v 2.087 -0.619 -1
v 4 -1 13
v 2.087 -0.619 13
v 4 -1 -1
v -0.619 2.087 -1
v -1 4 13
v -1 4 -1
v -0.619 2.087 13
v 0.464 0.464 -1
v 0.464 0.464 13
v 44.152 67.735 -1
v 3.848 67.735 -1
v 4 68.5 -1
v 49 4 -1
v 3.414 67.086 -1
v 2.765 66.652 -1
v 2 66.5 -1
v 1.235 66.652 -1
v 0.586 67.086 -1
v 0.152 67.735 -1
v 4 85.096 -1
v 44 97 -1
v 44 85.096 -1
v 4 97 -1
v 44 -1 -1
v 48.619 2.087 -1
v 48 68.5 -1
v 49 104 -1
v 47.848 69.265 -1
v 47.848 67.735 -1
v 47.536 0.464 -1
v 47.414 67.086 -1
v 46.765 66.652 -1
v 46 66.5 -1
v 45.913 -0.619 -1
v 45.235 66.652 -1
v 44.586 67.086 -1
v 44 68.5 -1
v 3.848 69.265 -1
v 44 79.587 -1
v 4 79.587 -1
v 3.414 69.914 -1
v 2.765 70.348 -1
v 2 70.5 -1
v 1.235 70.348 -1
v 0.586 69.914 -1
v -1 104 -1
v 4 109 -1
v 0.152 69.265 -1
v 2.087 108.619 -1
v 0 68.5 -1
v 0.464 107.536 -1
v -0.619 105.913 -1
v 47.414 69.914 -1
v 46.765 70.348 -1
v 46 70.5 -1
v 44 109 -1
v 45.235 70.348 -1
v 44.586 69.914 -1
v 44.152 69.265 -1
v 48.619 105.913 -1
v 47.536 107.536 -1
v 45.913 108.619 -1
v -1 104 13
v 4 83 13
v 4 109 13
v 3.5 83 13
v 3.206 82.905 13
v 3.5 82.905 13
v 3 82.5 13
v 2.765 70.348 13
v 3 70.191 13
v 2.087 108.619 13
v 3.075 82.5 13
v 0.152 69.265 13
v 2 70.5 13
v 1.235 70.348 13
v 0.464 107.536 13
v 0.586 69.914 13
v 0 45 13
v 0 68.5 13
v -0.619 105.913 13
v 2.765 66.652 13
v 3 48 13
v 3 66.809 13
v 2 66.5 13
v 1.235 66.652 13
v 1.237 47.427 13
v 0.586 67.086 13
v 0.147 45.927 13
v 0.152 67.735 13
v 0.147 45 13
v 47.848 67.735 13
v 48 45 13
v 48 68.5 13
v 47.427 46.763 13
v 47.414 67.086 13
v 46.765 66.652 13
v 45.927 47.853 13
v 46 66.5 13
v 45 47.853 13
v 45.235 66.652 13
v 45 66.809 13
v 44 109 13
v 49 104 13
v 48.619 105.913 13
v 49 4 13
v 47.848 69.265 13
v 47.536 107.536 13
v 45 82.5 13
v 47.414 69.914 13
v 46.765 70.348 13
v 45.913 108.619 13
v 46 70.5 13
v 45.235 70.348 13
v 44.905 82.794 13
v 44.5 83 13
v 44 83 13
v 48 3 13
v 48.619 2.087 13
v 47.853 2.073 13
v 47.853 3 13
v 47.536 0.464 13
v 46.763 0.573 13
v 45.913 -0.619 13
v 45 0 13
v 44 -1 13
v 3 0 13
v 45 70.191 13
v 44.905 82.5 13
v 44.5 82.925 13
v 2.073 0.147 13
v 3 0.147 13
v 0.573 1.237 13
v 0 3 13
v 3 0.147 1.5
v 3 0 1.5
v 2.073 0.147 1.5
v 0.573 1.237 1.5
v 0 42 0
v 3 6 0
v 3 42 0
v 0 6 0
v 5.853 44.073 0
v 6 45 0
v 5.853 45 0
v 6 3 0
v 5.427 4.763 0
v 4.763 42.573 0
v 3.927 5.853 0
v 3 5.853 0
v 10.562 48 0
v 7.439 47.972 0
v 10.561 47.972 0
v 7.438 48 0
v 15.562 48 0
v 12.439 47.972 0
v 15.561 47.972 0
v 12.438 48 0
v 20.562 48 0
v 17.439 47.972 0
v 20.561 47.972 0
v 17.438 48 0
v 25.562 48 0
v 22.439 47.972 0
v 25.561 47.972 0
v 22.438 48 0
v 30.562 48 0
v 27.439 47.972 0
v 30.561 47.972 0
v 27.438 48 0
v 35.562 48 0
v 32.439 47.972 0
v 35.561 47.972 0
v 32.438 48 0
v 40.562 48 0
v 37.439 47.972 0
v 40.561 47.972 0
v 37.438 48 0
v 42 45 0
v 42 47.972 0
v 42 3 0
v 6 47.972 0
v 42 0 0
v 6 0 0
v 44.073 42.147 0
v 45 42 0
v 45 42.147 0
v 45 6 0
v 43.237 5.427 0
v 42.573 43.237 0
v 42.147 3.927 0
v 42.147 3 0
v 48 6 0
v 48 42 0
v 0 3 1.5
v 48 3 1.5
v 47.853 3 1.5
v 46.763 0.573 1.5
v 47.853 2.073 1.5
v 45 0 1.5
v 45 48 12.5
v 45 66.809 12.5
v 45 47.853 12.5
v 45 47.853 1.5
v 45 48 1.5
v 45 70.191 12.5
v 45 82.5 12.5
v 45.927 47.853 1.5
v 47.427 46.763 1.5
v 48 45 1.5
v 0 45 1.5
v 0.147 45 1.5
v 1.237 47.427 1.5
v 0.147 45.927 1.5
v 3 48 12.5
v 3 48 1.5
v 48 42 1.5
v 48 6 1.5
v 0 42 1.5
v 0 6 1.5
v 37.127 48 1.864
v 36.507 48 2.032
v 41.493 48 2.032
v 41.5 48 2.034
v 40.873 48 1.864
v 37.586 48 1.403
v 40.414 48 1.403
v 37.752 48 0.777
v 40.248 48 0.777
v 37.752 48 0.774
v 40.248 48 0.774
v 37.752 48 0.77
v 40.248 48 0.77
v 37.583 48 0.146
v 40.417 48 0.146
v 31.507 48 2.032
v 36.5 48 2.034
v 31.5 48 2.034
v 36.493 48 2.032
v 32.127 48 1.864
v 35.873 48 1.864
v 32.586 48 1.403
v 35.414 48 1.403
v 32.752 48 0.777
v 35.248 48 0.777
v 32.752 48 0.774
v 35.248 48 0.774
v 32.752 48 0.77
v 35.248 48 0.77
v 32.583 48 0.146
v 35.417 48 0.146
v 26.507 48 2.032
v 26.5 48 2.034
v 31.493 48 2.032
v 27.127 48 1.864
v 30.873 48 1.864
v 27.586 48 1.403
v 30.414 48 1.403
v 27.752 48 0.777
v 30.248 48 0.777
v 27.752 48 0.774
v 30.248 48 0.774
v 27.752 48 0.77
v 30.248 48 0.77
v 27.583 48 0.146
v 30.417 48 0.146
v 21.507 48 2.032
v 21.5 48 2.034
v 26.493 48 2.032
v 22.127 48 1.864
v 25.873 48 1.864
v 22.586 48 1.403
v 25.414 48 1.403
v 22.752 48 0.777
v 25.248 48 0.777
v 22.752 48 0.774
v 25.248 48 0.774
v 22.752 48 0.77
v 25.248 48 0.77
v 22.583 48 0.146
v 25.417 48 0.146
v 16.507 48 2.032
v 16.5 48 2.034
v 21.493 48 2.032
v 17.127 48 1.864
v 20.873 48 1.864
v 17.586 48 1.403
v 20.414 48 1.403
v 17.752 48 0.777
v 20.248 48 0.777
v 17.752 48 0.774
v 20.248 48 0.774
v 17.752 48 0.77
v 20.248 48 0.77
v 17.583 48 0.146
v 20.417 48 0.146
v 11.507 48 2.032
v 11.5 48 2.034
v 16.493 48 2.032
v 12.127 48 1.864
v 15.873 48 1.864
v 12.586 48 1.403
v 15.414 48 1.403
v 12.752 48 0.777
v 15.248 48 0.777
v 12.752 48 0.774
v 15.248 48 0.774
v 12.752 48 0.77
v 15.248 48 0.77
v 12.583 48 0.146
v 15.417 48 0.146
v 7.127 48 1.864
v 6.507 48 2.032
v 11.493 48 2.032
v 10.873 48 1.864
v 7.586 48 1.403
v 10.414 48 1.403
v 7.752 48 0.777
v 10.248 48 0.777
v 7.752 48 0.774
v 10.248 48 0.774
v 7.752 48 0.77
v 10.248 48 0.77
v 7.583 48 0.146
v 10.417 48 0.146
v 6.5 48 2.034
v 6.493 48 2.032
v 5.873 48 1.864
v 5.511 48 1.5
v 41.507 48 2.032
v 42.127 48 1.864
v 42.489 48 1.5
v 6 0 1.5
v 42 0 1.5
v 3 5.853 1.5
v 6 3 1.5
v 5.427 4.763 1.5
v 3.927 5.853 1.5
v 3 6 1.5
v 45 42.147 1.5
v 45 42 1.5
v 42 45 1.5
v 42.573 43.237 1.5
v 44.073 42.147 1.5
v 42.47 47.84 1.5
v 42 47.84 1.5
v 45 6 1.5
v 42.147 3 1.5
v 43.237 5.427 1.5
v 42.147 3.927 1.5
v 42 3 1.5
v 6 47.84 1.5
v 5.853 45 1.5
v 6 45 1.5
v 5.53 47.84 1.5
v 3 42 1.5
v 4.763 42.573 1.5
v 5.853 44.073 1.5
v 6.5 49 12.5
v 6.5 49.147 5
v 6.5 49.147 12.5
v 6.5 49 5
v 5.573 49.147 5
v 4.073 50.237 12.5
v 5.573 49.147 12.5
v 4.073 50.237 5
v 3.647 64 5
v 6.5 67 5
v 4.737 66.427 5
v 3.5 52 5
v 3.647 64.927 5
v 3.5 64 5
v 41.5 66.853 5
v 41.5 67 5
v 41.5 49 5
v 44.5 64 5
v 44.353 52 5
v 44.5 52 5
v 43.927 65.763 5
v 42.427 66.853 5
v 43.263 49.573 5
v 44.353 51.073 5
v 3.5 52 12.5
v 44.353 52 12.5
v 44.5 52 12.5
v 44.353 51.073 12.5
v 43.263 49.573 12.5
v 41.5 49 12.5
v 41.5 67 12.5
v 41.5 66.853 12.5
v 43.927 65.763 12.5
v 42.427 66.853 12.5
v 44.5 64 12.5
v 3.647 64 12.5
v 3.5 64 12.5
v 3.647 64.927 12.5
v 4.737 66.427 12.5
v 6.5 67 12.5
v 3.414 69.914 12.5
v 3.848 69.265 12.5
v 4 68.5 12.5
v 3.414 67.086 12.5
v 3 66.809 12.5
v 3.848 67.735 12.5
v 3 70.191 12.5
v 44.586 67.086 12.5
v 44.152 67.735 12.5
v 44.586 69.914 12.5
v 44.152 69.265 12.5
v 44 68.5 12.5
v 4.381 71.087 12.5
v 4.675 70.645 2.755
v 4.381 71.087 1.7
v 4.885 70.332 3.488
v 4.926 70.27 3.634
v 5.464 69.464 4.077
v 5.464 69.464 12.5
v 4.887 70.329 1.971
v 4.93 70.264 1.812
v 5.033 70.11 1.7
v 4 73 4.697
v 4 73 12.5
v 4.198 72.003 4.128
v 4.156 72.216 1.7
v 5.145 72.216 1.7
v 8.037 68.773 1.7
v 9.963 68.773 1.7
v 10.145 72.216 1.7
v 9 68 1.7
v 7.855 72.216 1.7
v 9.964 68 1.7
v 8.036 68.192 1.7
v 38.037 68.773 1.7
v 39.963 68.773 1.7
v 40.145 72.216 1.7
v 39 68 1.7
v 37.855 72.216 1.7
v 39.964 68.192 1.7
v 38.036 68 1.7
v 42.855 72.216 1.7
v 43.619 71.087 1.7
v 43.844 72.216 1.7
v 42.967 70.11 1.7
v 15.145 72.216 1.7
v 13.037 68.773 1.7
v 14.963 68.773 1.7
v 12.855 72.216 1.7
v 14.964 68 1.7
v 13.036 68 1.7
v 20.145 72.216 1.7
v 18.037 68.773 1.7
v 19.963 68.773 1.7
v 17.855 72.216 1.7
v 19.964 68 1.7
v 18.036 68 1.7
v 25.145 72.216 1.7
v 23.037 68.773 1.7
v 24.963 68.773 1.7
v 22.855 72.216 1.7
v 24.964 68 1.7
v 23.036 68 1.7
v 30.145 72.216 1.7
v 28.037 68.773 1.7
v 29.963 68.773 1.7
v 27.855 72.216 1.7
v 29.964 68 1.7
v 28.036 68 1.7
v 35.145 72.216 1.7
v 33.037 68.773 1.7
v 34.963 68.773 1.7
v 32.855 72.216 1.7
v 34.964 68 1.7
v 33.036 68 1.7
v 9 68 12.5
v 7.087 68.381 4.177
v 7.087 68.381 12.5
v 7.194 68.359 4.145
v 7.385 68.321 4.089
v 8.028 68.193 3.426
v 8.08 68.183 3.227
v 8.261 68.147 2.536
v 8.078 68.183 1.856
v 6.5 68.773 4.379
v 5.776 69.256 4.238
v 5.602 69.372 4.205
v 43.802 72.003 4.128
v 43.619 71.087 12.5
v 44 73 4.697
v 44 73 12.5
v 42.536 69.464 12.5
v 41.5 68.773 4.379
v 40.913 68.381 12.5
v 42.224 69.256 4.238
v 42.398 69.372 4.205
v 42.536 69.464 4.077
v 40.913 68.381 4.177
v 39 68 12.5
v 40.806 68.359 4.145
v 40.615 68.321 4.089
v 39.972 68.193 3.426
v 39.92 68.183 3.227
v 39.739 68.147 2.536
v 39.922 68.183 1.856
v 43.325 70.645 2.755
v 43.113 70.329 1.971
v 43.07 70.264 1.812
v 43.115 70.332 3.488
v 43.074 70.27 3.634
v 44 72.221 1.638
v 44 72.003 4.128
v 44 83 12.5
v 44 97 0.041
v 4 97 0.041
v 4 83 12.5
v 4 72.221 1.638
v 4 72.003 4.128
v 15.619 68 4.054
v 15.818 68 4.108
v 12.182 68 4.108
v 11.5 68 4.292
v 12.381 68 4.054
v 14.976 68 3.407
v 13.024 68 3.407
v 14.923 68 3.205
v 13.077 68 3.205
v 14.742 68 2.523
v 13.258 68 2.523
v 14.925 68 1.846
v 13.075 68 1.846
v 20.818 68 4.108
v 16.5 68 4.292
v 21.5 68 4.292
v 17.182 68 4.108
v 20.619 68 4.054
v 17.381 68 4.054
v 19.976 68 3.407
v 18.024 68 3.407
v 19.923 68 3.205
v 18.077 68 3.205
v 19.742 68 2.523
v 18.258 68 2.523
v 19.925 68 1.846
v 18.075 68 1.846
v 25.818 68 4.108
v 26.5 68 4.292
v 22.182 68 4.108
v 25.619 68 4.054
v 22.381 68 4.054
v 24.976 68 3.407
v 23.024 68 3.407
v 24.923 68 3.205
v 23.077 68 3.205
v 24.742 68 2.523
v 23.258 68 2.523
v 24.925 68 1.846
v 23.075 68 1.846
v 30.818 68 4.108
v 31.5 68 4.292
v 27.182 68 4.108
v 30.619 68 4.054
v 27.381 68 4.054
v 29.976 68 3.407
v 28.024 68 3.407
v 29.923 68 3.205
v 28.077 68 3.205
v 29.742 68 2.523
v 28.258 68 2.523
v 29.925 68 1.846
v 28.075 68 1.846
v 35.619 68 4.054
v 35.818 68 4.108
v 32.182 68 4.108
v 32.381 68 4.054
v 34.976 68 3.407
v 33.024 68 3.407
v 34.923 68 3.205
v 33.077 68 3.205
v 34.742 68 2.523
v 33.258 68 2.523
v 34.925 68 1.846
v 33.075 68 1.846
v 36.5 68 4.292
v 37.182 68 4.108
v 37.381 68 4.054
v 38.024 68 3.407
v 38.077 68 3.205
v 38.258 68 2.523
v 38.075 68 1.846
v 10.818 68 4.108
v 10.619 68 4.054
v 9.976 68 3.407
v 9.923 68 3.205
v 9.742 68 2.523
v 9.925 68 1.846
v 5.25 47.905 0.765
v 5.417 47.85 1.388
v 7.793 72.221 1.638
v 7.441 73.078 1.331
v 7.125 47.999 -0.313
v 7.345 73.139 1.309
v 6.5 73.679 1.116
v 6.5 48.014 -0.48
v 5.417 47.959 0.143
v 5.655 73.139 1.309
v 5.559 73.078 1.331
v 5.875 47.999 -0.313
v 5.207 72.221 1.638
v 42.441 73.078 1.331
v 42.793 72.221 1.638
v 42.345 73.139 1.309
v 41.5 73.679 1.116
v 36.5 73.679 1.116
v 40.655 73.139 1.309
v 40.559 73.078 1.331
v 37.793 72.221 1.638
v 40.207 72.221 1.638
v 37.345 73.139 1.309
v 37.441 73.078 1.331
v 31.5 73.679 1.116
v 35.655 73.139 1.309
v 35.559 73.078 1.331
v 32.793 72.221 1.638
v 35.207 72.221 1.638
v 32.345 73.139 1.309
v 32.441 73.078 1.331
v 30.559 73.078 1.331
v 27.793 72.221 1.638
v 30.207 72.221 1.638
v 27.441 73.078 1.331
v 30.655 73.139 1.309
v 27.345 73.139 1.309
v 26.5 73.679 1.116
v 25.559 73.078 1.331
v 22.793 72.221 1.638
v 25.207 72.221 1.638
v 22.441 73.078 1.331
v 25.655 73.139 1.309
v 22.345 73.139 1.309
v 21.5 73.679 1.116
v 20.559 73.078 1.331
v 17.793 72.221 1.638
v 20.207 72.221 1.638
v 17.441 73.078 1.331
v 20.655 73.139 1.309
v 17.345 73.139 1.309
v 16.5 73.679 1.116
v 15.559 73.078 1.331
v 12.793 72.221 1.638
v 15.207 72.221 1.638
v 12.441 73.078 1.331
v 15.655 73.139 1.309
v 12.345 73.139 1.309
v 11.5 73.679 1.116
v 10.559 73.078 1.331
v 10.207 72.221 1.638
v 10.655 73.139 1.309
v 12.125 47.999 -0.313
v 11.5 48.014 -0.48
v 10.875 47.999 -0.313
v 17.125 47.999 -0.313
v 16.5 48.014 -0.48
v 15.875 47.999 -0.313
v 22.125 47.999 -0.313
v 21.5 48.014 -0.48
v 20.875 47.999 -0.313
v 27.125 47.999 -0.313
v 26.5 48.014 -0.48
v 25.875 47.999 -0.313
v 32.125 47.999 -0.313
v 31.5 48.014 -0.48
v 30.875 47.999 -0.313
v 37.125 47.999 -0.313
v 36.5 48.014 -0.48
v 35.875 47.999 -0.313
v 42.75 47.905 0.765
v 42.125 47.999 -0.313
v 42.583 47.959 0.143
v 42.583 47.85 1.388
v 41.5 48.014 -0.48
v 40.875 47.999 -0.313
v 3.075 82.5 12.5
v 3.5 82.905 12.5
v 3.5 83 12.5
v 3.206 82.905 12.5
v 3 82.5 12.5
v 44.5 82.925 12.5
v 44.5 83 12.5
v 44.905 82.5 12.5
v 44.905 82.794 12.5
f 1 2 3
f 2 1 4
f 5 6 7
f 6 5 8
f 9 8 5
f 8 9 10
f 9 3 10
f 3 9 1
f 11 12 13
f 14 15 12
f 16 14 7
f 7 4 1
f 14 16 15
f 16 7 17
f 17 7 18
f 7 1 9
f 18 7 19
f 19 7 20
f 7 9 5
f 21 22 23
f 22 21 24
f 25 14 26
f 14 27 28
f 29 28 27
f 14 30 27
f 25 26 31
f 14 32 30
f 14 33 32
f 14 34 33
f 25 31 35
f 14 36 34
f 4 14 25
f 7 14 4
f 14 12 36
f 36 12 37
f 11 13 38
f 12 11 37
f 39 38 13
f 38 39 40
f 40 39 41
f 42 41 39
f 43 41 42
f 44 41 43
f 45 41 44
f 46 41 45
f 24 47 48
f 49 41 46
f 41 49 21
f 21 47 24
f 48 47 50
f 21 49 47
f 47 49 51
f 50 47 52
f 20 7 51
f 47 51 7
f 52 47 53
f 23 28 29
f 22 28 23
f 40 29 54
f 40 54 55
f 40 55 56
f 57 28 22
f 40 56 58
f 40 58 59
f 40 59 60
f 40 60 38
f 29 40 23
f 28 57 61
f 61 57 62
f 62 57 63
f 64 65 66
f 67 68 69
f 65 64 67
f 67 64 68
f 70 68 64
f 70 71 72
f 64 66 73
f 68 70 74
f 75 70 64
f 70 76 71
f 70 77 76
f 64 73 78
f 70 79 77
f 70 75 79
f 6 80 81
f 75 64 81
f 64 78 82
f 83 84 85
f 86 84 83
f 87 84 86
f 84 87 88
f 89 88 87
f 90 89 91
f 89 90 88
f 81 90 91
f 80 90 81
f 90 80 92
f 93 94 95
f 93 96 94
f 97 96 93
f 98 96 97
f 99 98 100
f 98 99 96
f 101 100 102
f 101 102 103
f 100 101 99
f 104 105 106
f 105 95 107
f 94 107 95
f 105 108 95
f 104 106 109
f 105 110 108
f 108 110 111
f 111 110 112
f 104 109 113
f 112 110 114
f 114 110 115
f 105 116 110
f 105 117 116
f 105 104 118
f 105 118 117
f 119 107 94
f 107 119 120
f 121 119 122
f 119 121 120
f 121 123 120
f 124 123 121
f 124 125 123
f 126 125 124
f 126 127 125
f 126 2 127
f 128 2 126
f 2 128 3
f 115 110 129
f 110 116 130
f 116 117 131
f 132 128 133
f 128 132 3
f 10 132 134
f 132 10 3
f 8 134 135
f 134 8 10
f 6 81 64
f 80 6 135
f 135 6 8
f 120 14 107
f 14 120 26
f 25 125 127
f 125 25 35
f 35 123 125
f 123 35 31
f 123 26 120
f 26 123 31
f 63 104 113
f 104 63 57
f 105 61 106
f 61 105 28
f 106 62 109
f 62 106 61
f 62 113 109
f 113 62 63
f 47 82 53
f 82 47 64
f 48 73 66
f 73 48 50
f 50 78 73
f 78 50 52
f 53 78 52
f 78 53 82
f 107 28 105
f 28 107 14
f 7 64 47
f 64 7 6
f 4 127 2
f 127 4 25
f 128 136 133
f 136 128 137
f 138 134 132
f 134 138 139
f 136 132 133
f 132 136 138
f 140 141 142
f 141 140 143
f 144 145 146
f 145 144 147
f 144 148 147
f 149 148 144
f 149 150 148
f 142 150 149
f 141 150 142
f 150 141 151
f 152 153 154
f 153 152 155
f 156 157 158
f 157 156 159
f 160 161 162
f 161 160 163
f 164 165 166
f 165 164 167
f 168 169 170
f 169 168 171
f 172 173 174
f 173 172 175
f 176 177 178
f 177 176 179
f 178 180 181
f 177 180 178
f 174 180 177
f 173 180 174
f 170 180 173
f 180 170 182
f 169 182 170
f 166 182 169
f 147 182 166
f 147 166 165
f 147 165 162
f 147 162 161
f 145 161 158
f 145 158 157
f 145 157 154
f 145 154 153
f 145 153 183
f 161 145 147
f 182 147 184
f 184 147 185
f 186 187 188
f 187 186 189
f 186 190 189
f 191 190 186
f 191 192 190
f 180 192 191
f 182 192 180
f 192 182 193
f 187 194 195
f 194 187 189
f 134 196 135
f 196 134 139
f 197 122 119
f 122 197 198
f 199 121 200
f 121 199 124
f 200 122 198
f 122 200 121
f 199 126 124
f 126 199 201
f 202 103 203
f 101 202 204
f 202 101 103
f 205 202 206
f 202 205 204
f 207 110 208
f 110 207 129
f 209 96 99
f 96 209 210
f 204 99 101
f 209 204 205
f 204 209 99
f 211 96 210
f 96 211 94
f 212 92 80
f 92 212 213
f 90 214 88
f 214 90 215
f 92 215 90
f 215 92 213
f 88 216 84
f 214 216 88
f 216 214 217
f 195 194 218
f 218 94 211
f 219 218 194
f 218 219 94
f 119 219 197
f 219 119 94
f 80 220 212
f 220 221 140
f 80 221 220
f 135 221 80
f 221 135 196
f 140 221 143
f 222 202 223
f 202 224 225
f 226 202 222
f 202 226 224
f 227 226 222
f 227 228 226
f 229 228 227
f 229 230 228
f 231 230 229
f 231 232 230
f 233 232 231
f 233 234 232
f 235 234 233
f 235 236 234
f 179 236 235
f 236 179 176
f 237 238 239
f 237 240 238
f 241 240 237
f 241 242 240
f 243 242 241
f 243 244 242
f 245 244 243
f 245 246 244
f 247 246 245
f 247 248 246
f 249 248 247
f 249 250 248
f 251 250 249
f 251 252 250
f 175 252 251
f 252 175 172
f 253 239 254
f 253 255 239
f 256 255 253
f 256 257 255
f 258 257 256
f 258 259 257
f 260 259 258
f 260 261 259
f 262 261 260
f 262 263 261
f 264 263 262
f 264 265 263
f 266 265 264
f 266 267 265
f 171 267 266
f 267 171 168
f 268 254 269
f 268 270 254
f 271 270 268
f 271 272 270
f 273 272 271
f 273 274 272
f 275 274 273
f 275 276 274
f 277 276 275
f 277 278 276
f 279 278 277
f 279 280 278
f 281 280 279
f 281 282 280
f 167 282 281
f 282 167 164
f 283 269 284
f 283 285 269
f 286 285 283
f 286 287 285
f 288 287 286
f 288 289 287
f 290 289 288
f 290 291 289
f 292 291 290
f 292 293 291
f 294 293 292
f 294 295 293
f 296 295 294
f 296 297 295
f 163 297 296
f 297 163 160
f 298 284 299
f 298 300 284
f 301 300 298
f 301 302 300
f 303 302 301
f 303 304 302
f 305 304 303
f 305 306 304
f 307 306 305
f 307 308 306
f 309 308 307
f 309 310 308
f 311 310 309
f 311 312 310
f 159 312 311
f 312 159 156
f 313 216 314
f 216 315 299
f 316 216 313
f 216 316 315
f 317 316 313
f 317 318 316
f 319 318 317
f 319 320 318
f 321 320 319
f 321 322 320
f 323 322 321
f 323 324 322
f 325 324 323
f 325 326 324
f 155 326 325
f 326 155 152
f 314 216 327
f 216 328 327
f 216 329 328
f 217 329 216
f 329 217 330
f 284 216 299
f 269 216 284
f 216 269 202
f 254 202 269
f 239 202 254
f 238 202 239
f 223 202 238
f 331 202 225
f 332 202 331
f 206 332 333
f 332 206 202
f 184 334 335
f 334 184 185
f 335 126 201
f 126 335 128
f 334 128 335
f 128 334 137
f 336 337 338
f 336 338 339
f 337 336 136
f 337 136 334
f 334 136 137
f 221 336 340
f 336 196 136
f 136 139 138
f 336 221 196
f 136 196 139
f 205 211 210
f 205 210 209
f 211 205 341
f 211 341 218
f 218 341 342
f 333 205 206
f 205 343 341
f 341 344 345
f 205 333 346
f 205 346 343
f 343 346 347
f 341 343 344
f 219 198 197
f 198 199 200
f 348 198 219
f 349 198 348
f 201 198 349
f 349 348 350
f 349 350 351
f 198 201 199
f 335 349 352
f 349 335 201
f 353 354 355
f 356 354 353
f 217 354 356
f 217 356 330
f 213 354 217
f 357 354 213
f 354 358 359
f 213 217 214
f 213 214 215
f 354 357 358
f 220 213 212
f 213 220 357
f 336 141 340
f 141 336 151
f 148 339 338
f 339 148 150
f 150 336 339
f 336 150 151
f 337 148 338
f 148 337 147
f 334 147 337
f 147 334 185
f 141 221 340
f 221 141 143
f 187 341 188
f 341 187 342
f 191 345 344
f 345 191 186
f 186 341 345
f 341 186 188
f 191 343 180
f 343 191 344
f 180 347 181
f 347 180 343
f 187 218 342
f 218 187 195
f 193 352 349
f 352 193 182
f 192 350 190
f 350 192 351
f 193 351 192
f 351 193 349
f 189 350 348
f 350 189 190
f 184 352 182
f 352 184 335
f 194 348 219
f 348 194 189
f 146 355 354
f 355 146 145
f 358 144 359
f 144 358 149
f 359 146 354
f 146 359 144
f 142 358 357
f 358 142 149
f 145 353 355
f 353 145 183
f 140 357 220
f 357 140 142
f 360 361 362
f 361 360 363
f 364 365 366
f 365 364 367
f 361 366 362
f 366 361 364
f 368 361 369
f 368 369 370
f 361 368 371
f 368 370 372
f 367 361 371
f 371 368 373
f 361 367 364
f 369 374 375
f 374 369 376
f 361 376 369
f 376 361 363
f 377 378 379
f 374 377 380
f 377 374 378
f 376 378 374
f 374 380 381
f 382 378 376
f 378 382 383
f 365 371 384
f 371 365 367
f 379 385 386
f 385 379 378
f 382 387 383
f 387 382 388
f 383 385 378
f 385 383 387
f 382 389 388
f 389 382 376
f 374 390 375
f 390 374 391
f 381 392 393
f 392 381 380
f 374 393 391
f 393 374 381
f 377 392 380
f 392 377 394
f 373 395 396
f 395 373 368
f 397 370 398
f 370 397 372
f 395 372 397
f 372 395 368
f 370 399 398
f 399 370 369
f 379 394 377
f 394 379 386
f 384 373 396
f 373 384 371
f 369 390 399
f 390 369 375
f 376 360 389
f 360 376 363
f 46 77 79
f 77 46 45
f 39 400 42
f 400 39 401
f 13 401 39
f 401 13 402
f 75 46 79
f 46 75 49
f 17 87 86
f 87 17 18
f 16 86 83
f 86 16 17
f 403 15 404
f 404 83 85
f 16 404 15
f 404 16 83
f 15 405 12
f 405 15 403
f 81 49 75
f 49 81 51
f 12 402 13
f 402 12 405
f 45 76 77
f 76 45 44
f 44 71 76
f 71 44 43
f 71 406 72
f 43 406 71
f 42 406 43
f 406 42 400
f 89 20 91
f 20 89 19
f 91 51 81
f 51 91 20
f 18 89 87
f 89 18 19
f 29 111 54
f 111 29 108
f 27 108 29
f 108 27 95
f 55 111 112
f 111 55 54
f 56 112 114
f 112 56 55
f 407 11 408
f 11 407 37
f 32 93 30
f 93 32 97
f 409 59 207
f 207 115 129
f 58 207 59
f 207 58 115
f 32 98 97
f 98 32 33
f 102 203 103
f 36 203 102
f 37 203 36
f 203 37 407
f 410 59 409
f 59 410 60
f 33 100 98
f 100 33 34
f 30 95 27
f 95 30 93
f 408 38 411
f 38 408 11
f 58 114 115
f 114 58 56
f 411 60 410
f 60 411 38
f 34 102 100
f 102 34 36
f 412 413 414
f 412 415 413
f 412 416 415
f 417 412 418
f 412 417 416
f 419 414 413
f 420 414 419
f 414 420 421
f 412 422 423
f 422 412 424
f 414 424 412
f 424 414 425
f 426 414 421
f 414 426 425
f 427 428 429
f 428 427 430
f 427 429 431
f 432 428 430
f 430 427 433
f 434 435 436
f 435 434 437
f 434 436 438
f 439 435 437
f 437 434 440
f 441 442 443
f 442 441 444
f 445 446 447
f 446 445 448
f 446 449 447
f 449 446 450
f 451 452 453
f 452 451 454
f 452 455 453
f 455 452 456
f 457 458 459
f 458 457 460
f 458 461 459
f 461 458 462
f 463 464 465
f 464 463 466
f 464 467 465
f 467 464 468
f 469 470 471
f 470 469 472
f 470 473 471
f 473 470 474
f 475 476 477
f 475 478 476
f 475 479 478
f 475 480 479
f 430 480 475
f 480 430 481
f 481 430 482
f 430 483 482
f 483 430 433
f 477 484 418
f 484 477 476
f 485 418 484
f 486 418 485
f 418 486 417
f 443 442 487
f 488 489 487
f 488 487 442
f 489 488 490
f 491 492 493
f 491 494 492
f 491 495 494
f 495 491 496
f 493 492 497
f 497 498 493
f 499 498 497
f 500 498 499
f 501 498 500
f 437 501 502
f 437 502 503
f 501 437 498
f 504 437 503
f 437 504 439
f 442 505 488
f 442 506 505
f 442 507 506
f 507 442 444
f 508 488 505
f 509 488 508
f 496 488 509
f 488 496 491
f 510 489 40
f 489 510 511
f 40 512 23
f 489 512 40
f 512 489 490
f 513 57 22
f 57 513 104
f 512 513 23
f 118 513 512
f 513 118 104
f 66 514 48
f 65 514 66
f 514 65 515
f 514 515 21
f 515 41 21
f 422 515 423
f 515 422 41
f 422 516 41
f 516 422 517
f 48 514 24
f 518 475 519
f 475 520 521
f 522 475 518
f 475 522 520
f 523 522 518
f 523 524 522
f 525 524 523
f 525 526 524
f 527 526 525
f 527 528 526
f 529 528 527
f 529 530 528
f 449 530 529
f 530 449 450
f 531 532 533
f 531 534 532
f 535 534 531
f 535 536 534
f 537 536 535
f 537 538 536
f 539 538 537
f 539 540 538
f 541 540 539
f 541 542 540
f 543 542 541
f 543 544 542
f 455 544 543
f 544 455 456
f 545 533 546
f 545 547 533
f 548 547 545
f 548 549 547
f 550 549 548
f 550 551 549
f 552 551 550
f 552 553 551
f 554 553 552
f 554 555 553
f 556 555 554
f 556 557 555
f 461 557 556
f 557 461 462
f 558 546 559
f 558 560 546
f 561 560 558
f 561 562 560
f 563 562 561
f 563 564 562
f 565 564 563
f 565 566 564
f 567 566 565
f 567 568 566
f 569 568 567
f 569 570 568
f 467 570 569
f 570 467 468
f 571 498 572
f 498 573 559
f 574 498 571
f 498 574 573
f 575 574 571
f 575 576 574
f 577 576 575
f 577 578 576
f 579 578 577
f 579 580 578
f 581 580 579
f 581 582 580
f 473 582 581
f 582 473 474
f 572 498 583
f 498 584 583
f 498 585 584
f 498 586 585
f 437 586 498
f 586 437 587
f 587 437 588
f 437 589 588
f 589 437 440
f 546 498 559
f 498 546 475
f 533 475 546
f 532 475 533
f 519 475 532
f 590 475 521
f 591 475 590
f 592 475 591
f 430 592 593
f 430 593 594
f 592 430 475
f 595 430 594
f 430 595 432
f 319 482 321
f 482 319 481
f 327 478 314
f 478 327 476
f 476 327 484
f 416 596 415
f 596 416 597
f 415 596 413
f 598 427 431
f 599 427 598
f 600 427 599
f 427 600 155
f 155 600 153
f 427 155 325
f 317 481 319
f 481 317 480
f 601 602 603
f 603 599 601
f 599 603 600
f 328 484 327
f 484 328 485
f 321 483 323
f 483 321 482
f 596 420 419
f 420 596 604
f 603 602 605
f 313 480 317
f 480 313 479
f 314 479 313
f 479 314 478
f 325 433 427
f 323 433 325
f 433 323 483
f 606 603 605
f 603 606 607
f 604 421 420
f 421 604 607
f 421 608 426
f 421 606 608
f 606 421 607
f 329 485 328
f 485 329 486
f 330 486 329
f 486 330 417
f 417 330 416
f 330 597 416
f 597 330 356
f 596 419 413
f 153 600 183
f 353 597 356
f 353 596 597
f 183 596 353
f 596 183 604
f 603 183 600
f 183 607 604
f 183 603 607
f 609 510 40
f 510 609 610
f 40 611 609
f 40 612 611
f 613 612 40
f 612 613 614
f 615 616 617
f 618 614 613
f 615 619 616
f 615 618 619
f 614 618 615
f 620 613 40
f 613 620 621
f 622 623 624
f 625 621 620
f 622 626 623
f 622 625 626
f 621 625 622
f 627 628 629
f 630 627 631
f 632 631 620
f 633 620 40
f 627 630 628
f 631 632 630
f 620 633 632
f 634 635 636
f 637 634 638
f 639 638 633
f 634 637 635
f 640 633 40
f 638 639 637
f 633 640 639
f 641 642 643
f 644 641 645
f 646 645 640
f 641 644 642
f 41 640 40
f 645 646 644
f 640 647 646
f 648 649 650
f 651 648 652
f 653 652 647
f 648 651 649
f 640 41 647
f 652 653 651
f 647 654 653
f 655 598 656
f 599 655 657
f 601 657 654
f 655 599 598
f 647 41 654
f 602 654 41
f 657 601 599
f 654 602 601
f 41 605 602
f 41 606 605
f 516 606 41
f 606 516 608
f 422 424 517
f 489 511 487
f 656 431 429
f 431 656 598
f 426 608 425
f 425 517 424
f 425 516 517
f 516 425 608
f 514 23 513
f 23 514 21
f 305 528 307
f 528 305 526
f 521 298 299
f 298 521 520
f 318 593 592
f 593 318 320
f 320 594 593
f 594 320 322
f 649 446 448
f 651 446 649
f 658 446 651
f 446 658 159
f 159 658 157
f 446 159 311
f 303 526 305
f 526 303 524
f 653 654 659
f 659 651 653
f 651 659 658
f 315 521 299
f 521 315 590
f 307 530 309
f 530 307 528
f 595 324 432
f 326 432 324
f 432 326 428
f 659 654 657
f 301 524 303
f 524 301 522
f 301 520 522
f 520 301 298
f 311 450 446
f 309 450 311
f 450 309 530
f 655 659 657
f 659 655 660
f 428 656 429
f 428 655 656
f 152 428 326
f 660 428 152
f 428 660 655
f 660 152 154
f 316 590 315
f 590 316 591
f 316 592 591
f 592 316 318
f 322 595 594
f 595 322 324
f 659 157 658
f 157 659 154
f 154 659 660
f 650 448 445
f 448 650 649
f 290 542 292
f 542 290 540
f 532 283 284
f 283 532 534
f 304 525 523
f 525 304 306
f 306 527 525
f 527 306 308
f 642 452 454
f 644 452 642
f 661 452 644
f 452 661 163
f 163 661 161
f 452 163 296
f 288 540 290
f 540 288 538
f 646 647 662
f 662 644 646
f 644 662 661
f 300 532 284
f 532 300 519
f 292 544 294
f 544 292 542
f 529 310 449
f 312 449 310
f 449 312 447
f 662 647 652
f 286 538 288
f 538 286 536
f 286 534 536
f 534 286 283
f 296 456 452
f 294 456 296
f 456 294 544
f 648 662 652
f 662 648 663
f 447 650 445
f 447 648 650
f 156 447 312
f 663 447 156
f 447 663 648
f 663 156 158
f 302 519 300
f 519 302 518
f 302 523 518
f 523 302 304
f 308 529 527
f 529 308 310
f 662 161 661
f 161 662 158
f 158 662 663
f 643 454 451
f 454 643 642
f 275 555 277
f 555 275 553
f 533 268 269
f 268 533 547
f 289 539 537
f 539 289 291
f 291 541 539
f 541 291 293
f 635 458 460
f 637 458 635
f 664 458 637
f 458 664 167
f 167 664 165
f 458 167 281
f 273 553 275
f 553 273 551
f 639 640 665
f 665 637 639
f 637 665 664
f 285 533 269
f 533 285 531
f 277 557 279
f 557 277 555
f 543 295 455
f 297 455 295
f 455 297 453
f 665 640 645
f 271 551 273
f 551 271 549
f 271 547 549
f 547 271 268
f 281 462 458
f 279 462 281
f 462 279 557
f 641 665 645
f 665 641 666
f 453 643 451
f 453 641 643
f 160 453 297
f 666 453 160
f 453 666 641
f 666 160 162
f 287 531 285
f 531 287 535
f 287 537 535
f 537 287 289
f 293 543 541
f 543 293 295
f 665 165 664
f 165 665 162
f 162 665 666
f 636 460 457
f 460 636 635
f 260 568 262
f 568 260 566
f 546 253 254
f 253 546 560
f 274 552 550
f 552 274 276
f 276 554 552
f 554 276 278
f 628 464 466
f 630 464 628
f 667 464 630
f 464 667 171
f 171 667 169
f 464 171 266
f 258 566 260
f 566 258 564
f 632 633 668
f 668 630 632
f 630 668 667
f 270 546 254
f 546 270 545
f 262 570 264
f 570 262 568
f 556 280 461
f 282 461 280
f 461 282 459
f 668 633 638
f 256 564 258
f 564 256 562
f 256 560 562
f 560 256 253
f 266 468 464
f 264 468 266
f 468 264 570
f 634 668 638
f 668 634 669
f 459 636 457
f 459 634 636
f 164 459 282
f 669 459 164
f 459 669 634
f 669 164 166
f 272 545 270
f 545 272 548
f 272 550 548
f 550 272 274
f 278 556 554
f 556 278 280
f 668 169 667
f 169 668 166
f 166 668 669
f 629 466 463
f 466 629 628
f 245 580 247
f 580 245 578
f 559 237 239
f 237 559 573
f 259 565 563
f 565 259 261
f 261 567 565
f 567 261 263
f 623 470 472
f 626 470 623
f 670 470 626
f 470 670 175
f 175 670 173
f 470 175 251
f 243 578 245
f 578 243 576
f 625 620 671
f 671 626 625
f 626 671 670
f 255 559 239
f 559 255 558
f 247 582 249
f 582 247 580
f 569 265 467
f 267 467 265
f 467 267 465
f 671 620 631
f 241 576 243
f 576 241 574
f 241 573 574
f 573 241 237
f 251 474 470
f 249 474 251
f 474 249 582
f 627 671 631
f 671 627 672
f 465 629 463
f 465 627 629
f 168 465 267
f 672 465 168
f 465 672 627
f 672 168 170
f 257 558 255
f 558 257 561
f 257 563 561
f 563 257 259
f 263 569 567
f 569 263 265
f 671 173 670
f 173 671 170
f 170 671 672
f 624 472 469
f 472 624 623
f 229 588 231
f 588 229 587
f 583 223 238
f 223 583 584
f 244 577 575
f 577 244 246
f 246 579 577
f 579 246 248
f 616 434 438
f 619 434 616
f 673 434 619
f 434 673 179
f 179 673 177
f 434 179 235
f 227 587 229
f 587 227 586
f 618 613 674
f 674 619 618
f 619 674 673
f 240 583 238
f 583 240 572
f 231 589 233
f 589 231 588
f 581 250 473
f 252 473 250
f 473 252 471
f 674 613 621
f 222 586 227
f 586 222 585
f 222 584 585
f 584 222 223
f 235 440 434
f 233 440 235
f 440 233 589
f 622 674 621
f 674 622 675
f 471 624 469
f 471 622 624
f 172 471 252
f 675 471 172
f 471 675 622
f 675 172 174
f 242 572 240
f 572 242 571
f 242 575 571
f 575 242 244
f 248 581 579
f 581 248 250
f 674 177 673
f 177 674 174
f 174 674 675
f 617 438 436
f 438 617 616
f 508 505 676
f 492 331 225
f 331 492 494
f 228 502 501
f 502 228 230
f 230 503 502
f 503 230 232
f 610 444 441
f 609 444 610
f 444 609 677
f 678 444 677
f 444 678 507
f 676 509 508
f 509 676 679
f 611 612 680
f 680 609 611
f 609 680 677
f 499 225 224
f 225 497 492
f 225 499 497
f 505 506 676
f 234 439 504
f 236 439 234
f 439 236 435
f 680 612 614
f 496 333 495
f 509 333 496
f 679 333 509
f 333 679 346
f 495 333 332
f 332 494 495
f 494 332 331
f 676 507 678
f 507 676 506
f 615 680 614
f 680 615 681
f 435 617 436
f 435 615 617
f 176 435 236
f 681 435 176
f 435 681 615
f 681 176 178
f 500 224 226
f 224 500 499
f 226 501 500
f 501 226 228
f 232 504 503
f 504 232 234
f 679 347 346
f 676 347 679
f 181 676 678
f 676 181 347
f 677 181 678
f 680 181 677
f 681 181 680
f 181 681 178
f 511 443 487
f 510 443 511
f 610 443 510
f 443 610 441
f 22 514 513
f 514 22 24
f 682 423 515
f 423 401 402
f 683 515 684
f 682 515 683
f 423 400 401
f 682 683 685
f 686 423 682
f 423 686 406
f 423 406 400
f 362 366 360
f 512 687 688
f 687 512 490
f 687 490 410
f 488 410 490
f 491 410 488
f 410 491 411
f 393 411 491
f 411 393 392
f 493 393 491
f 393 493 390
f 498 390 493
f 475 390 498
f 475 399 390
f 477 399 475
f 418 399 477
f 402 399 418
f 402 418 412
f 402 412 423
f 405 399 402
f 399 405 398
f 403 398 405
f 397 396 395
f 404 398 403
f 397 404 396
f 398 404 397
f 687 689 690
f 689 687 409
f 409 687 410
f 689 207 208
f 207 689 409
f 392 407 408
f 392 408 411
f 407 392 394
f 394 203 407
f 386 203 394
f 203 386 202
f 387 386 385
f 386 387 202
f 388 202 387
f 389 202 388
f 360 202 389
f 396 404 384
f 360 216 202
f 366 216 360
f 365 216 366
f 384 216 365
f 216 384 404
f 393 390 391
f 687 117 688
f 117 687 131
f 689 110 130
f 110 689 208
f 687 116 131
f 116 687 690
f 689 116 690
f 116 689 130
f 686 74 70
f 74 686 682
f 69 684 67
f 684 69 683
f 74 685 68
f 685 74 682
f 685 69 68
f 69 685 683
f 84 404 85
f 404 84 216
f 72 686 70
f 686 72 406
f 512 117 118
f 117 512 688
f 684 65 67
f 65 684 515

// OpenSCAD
difference(){
    //main body
    translate([-1,-1,-1])roundedcube(50,110,14,5);
    //tigard
    tigard();
    //tigard cutout
    //translate([6,-1,-1])cube([36,49,15]);
    //bitmagic
    translate([3.5,49,5])bitmagic();
    //probe clips

    translate([4,108,0]){
    translate([20-0,0,0])rotate([5,0,0]){
        for (i=[-20:5:19]){
            translate([i,0,0])probeclip();
        }
    }
    //probe clip end cutout
    translate([0,-11,-1])cube([40,36,15]);
}
    //clip top cutout
    translate([4,68,1.7])roundedcube(40,50,12,5);
    //mounting holes
    translate([2,68.5,-2]){
        cylinder(20,2,2,$fn=16);
        translate([44,0,0])        cylinder(20,2,2,$fn=16);
    }
    //business card
    translate([3,0,12.5])roundedcube(42,83,.5,.5);
}


module bitmagic(){
    roundedcube(41,18,8,3);
}

module probeclip(){
    rotate([90,0,0])translate([2.5,6,30]){
        //clip long end
        cylinder(h=29.8,r1=2,r2=1.25,$fn=12);
        //clip triangle middle
        //rotate([0,-90,0])cylinder(h=.5,r=8,$fn=3,center=true);
        translate([2.5,0,0])rotate([0,-90,0])linear_extrude(height=5)polygon(points=[[-7,-7],[-7,7],[5.5,1.25],[5.5,-1.25]]);
        //clip rectangle body
        translate([-2.5,-5,-33])cube([5,10,26]);
    }
}

module tigard(){
    tigardx=48;
    tigardz=13;
    cutoutx=6;
    cutoutz=1.5;
    radius=3;

    difference(){
        roundedcube(tigardx,tigardx,tigardz,radius);
        intersection(){
            cube([tigardx,tigardx,cutoutz]);
            translate([-cutoutx,-cutoutx,0]){
                roundedcube(cutoutx*2,cutoutx*2,cutoutz,radius);
                translate([tigardx,tigardx,0])roundedcube(cutoutx*2,cutoutx*2,cutoutz,radius);
                translate([tigardx,0,0])roundedcube(cutoutx*2,cutoutx*2,cutoutz,radius);
                translate([0,tigardx,0])roundedcube(cutoutx*2,cutoutx*2,cutoutz,radius);
            }
        }
    }
}


module roundedcube(xx, yy, height, radius) {

difference(){

    cube([xx,yy,height]);

    difference(){
        translate([-.5,-.5,-.2])
        cube([radius+.5,radius+.5,height+.5]);

        translate([radius,radius,height/2])
        cylinder(height,radius,radius,true);
    }
    translate([xx,0,0])
    rotate(90)
    difference(){
        translate([-.5,-.5,-.2])
        cube([radius+.5,radius+.5,height+.5]);

        translate([radius,radius,height/2])
        cylinder(height,radius,radius,true);
    }

    translate([xx,yy,0])
    rotate(180)
    difference(){
        translate([-.5,-.5,-.2])
        cube([radius+.5,radius+.5,height+.5]);

        translate([radius,radius,height/2])
        cylinder(height,radius,radius,true);
    }

    translate([0,yy,0])
    rotate(270)
    difference(){
        translate([-.5,-.5,-.2])
        cube([radius+.5,radius+.5,height+.5]);

        translate([radius,radius,height/2])
        cylinder(height,radius,radius,true);
    }
}
}
